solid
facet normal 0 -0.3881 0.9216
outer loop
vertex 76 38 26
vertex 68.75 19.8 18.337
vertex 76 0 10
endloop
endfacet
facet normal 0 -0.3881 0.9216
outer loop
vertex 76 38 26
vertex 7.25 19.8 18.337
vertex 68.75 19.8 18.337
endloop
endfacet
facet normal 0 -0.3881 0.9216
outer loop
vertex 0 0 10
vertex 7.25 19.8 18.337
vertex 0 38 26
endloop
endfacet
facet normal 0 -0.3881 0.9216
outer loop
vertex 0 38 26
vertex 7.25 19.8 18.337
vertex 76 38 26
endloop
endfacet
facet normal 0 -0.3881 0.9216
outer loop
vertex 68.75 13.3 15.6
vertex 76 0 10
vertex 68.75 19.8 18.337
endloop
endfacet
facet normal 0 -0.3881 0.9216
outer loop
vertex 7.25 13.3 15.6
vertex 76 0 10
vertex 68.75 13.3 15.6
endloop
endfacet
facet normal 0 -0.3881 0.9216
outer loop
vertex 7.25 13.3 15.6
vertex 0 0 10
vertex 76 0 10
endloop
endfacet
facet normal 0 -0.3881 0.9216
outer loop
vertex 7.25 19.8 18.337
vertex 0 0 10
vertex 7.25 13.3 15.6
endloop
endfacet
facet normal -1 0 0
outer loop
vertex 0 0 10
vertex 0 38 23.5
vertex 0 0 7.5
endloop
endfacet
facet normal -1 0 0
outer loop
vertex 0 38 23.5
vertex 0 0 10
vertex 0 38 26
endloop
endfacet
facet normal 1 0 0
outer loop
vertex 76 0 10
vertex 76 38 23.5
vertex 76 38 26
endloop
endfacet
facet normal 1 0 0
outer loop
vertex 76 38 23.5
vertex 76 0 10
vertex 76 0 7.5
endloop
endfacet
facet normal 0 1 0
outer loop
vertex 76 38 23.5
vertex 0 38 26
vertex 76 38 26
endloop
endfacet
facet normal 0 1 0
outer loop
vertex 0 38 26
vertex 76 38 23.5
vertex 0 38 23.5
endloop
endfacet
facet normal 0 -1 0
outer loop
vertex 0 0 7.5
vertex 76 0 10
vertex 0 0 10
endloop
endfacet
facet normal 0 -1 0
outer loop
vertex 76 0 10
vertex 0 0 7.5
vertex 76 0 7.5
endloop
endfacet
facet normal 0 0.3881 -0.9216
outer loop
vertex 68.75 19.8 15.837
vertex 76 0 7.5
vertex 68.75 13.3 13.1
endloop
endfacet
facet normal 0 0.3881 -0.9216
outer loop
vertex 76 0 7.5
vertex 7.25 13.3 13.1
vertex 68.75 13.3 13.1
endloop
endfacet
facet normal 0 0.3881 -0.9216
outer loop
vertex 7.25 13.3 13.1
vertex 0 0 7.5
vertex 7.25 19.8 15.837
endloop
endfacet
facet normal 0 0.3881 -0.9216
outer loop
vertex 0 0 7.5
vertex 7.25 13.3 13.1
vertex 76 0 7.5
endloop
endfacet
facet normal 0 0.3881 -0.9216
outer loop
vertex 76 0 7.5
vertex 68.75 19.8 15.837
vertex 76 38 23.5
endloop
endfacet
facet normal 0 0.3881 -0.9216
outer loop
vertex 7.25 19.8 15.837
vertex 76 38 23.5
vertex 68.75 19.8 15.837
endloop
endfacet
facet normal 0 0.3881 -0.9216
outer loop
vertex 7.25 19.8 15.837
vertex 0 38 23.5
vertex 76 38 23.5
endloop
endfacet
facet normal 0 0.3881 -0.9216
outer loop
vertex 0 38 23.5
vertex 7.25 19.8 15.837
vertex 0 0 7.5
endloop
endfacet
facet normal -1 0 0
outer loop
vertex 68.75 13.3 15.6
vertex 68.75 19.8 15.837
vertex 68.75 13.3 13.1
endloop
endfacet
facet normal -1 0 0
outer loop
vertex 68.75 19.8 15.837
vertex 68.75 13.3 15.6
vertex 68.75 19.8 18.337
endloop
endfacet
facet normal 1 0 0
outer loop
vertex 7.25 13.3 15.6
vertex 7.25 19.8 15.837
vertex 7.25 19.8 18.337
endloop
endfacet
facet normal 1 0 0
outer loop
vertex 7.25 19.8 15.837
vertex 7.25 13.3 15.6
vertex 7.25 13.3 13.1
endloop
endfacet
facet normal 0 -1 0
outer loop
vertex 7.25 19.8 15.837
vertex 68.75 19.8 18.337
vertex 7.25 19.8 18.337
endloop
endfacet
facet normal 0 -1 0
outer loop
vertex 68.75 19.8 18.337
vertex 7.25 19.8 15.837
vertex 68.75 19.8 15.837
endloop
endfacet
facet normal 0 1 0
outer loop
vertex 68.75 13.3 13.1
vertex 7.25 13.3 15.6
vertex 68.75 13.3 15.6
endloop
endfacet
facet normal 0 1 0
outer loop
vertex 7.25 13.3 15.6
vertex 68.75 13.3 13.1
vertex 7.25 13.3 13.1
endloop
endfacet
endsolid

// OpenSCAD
// 第1階：斜板＋開槽（驗證寬度、斜角、槽位）
B=76; K=38; I=10; J=26; M=2.5;
G=61.5; Hs=6.5; Gx=(B-G)/2; Gy=K*0.35;
difference(){
  rotate([90,0,90]) linear_extrude(B) polygon([[0,I],[K,J],[K,J-M],[0,I-M]]);
  translate([Gx,Gy,-1]) cube([G,Hs,J+2]);
}
